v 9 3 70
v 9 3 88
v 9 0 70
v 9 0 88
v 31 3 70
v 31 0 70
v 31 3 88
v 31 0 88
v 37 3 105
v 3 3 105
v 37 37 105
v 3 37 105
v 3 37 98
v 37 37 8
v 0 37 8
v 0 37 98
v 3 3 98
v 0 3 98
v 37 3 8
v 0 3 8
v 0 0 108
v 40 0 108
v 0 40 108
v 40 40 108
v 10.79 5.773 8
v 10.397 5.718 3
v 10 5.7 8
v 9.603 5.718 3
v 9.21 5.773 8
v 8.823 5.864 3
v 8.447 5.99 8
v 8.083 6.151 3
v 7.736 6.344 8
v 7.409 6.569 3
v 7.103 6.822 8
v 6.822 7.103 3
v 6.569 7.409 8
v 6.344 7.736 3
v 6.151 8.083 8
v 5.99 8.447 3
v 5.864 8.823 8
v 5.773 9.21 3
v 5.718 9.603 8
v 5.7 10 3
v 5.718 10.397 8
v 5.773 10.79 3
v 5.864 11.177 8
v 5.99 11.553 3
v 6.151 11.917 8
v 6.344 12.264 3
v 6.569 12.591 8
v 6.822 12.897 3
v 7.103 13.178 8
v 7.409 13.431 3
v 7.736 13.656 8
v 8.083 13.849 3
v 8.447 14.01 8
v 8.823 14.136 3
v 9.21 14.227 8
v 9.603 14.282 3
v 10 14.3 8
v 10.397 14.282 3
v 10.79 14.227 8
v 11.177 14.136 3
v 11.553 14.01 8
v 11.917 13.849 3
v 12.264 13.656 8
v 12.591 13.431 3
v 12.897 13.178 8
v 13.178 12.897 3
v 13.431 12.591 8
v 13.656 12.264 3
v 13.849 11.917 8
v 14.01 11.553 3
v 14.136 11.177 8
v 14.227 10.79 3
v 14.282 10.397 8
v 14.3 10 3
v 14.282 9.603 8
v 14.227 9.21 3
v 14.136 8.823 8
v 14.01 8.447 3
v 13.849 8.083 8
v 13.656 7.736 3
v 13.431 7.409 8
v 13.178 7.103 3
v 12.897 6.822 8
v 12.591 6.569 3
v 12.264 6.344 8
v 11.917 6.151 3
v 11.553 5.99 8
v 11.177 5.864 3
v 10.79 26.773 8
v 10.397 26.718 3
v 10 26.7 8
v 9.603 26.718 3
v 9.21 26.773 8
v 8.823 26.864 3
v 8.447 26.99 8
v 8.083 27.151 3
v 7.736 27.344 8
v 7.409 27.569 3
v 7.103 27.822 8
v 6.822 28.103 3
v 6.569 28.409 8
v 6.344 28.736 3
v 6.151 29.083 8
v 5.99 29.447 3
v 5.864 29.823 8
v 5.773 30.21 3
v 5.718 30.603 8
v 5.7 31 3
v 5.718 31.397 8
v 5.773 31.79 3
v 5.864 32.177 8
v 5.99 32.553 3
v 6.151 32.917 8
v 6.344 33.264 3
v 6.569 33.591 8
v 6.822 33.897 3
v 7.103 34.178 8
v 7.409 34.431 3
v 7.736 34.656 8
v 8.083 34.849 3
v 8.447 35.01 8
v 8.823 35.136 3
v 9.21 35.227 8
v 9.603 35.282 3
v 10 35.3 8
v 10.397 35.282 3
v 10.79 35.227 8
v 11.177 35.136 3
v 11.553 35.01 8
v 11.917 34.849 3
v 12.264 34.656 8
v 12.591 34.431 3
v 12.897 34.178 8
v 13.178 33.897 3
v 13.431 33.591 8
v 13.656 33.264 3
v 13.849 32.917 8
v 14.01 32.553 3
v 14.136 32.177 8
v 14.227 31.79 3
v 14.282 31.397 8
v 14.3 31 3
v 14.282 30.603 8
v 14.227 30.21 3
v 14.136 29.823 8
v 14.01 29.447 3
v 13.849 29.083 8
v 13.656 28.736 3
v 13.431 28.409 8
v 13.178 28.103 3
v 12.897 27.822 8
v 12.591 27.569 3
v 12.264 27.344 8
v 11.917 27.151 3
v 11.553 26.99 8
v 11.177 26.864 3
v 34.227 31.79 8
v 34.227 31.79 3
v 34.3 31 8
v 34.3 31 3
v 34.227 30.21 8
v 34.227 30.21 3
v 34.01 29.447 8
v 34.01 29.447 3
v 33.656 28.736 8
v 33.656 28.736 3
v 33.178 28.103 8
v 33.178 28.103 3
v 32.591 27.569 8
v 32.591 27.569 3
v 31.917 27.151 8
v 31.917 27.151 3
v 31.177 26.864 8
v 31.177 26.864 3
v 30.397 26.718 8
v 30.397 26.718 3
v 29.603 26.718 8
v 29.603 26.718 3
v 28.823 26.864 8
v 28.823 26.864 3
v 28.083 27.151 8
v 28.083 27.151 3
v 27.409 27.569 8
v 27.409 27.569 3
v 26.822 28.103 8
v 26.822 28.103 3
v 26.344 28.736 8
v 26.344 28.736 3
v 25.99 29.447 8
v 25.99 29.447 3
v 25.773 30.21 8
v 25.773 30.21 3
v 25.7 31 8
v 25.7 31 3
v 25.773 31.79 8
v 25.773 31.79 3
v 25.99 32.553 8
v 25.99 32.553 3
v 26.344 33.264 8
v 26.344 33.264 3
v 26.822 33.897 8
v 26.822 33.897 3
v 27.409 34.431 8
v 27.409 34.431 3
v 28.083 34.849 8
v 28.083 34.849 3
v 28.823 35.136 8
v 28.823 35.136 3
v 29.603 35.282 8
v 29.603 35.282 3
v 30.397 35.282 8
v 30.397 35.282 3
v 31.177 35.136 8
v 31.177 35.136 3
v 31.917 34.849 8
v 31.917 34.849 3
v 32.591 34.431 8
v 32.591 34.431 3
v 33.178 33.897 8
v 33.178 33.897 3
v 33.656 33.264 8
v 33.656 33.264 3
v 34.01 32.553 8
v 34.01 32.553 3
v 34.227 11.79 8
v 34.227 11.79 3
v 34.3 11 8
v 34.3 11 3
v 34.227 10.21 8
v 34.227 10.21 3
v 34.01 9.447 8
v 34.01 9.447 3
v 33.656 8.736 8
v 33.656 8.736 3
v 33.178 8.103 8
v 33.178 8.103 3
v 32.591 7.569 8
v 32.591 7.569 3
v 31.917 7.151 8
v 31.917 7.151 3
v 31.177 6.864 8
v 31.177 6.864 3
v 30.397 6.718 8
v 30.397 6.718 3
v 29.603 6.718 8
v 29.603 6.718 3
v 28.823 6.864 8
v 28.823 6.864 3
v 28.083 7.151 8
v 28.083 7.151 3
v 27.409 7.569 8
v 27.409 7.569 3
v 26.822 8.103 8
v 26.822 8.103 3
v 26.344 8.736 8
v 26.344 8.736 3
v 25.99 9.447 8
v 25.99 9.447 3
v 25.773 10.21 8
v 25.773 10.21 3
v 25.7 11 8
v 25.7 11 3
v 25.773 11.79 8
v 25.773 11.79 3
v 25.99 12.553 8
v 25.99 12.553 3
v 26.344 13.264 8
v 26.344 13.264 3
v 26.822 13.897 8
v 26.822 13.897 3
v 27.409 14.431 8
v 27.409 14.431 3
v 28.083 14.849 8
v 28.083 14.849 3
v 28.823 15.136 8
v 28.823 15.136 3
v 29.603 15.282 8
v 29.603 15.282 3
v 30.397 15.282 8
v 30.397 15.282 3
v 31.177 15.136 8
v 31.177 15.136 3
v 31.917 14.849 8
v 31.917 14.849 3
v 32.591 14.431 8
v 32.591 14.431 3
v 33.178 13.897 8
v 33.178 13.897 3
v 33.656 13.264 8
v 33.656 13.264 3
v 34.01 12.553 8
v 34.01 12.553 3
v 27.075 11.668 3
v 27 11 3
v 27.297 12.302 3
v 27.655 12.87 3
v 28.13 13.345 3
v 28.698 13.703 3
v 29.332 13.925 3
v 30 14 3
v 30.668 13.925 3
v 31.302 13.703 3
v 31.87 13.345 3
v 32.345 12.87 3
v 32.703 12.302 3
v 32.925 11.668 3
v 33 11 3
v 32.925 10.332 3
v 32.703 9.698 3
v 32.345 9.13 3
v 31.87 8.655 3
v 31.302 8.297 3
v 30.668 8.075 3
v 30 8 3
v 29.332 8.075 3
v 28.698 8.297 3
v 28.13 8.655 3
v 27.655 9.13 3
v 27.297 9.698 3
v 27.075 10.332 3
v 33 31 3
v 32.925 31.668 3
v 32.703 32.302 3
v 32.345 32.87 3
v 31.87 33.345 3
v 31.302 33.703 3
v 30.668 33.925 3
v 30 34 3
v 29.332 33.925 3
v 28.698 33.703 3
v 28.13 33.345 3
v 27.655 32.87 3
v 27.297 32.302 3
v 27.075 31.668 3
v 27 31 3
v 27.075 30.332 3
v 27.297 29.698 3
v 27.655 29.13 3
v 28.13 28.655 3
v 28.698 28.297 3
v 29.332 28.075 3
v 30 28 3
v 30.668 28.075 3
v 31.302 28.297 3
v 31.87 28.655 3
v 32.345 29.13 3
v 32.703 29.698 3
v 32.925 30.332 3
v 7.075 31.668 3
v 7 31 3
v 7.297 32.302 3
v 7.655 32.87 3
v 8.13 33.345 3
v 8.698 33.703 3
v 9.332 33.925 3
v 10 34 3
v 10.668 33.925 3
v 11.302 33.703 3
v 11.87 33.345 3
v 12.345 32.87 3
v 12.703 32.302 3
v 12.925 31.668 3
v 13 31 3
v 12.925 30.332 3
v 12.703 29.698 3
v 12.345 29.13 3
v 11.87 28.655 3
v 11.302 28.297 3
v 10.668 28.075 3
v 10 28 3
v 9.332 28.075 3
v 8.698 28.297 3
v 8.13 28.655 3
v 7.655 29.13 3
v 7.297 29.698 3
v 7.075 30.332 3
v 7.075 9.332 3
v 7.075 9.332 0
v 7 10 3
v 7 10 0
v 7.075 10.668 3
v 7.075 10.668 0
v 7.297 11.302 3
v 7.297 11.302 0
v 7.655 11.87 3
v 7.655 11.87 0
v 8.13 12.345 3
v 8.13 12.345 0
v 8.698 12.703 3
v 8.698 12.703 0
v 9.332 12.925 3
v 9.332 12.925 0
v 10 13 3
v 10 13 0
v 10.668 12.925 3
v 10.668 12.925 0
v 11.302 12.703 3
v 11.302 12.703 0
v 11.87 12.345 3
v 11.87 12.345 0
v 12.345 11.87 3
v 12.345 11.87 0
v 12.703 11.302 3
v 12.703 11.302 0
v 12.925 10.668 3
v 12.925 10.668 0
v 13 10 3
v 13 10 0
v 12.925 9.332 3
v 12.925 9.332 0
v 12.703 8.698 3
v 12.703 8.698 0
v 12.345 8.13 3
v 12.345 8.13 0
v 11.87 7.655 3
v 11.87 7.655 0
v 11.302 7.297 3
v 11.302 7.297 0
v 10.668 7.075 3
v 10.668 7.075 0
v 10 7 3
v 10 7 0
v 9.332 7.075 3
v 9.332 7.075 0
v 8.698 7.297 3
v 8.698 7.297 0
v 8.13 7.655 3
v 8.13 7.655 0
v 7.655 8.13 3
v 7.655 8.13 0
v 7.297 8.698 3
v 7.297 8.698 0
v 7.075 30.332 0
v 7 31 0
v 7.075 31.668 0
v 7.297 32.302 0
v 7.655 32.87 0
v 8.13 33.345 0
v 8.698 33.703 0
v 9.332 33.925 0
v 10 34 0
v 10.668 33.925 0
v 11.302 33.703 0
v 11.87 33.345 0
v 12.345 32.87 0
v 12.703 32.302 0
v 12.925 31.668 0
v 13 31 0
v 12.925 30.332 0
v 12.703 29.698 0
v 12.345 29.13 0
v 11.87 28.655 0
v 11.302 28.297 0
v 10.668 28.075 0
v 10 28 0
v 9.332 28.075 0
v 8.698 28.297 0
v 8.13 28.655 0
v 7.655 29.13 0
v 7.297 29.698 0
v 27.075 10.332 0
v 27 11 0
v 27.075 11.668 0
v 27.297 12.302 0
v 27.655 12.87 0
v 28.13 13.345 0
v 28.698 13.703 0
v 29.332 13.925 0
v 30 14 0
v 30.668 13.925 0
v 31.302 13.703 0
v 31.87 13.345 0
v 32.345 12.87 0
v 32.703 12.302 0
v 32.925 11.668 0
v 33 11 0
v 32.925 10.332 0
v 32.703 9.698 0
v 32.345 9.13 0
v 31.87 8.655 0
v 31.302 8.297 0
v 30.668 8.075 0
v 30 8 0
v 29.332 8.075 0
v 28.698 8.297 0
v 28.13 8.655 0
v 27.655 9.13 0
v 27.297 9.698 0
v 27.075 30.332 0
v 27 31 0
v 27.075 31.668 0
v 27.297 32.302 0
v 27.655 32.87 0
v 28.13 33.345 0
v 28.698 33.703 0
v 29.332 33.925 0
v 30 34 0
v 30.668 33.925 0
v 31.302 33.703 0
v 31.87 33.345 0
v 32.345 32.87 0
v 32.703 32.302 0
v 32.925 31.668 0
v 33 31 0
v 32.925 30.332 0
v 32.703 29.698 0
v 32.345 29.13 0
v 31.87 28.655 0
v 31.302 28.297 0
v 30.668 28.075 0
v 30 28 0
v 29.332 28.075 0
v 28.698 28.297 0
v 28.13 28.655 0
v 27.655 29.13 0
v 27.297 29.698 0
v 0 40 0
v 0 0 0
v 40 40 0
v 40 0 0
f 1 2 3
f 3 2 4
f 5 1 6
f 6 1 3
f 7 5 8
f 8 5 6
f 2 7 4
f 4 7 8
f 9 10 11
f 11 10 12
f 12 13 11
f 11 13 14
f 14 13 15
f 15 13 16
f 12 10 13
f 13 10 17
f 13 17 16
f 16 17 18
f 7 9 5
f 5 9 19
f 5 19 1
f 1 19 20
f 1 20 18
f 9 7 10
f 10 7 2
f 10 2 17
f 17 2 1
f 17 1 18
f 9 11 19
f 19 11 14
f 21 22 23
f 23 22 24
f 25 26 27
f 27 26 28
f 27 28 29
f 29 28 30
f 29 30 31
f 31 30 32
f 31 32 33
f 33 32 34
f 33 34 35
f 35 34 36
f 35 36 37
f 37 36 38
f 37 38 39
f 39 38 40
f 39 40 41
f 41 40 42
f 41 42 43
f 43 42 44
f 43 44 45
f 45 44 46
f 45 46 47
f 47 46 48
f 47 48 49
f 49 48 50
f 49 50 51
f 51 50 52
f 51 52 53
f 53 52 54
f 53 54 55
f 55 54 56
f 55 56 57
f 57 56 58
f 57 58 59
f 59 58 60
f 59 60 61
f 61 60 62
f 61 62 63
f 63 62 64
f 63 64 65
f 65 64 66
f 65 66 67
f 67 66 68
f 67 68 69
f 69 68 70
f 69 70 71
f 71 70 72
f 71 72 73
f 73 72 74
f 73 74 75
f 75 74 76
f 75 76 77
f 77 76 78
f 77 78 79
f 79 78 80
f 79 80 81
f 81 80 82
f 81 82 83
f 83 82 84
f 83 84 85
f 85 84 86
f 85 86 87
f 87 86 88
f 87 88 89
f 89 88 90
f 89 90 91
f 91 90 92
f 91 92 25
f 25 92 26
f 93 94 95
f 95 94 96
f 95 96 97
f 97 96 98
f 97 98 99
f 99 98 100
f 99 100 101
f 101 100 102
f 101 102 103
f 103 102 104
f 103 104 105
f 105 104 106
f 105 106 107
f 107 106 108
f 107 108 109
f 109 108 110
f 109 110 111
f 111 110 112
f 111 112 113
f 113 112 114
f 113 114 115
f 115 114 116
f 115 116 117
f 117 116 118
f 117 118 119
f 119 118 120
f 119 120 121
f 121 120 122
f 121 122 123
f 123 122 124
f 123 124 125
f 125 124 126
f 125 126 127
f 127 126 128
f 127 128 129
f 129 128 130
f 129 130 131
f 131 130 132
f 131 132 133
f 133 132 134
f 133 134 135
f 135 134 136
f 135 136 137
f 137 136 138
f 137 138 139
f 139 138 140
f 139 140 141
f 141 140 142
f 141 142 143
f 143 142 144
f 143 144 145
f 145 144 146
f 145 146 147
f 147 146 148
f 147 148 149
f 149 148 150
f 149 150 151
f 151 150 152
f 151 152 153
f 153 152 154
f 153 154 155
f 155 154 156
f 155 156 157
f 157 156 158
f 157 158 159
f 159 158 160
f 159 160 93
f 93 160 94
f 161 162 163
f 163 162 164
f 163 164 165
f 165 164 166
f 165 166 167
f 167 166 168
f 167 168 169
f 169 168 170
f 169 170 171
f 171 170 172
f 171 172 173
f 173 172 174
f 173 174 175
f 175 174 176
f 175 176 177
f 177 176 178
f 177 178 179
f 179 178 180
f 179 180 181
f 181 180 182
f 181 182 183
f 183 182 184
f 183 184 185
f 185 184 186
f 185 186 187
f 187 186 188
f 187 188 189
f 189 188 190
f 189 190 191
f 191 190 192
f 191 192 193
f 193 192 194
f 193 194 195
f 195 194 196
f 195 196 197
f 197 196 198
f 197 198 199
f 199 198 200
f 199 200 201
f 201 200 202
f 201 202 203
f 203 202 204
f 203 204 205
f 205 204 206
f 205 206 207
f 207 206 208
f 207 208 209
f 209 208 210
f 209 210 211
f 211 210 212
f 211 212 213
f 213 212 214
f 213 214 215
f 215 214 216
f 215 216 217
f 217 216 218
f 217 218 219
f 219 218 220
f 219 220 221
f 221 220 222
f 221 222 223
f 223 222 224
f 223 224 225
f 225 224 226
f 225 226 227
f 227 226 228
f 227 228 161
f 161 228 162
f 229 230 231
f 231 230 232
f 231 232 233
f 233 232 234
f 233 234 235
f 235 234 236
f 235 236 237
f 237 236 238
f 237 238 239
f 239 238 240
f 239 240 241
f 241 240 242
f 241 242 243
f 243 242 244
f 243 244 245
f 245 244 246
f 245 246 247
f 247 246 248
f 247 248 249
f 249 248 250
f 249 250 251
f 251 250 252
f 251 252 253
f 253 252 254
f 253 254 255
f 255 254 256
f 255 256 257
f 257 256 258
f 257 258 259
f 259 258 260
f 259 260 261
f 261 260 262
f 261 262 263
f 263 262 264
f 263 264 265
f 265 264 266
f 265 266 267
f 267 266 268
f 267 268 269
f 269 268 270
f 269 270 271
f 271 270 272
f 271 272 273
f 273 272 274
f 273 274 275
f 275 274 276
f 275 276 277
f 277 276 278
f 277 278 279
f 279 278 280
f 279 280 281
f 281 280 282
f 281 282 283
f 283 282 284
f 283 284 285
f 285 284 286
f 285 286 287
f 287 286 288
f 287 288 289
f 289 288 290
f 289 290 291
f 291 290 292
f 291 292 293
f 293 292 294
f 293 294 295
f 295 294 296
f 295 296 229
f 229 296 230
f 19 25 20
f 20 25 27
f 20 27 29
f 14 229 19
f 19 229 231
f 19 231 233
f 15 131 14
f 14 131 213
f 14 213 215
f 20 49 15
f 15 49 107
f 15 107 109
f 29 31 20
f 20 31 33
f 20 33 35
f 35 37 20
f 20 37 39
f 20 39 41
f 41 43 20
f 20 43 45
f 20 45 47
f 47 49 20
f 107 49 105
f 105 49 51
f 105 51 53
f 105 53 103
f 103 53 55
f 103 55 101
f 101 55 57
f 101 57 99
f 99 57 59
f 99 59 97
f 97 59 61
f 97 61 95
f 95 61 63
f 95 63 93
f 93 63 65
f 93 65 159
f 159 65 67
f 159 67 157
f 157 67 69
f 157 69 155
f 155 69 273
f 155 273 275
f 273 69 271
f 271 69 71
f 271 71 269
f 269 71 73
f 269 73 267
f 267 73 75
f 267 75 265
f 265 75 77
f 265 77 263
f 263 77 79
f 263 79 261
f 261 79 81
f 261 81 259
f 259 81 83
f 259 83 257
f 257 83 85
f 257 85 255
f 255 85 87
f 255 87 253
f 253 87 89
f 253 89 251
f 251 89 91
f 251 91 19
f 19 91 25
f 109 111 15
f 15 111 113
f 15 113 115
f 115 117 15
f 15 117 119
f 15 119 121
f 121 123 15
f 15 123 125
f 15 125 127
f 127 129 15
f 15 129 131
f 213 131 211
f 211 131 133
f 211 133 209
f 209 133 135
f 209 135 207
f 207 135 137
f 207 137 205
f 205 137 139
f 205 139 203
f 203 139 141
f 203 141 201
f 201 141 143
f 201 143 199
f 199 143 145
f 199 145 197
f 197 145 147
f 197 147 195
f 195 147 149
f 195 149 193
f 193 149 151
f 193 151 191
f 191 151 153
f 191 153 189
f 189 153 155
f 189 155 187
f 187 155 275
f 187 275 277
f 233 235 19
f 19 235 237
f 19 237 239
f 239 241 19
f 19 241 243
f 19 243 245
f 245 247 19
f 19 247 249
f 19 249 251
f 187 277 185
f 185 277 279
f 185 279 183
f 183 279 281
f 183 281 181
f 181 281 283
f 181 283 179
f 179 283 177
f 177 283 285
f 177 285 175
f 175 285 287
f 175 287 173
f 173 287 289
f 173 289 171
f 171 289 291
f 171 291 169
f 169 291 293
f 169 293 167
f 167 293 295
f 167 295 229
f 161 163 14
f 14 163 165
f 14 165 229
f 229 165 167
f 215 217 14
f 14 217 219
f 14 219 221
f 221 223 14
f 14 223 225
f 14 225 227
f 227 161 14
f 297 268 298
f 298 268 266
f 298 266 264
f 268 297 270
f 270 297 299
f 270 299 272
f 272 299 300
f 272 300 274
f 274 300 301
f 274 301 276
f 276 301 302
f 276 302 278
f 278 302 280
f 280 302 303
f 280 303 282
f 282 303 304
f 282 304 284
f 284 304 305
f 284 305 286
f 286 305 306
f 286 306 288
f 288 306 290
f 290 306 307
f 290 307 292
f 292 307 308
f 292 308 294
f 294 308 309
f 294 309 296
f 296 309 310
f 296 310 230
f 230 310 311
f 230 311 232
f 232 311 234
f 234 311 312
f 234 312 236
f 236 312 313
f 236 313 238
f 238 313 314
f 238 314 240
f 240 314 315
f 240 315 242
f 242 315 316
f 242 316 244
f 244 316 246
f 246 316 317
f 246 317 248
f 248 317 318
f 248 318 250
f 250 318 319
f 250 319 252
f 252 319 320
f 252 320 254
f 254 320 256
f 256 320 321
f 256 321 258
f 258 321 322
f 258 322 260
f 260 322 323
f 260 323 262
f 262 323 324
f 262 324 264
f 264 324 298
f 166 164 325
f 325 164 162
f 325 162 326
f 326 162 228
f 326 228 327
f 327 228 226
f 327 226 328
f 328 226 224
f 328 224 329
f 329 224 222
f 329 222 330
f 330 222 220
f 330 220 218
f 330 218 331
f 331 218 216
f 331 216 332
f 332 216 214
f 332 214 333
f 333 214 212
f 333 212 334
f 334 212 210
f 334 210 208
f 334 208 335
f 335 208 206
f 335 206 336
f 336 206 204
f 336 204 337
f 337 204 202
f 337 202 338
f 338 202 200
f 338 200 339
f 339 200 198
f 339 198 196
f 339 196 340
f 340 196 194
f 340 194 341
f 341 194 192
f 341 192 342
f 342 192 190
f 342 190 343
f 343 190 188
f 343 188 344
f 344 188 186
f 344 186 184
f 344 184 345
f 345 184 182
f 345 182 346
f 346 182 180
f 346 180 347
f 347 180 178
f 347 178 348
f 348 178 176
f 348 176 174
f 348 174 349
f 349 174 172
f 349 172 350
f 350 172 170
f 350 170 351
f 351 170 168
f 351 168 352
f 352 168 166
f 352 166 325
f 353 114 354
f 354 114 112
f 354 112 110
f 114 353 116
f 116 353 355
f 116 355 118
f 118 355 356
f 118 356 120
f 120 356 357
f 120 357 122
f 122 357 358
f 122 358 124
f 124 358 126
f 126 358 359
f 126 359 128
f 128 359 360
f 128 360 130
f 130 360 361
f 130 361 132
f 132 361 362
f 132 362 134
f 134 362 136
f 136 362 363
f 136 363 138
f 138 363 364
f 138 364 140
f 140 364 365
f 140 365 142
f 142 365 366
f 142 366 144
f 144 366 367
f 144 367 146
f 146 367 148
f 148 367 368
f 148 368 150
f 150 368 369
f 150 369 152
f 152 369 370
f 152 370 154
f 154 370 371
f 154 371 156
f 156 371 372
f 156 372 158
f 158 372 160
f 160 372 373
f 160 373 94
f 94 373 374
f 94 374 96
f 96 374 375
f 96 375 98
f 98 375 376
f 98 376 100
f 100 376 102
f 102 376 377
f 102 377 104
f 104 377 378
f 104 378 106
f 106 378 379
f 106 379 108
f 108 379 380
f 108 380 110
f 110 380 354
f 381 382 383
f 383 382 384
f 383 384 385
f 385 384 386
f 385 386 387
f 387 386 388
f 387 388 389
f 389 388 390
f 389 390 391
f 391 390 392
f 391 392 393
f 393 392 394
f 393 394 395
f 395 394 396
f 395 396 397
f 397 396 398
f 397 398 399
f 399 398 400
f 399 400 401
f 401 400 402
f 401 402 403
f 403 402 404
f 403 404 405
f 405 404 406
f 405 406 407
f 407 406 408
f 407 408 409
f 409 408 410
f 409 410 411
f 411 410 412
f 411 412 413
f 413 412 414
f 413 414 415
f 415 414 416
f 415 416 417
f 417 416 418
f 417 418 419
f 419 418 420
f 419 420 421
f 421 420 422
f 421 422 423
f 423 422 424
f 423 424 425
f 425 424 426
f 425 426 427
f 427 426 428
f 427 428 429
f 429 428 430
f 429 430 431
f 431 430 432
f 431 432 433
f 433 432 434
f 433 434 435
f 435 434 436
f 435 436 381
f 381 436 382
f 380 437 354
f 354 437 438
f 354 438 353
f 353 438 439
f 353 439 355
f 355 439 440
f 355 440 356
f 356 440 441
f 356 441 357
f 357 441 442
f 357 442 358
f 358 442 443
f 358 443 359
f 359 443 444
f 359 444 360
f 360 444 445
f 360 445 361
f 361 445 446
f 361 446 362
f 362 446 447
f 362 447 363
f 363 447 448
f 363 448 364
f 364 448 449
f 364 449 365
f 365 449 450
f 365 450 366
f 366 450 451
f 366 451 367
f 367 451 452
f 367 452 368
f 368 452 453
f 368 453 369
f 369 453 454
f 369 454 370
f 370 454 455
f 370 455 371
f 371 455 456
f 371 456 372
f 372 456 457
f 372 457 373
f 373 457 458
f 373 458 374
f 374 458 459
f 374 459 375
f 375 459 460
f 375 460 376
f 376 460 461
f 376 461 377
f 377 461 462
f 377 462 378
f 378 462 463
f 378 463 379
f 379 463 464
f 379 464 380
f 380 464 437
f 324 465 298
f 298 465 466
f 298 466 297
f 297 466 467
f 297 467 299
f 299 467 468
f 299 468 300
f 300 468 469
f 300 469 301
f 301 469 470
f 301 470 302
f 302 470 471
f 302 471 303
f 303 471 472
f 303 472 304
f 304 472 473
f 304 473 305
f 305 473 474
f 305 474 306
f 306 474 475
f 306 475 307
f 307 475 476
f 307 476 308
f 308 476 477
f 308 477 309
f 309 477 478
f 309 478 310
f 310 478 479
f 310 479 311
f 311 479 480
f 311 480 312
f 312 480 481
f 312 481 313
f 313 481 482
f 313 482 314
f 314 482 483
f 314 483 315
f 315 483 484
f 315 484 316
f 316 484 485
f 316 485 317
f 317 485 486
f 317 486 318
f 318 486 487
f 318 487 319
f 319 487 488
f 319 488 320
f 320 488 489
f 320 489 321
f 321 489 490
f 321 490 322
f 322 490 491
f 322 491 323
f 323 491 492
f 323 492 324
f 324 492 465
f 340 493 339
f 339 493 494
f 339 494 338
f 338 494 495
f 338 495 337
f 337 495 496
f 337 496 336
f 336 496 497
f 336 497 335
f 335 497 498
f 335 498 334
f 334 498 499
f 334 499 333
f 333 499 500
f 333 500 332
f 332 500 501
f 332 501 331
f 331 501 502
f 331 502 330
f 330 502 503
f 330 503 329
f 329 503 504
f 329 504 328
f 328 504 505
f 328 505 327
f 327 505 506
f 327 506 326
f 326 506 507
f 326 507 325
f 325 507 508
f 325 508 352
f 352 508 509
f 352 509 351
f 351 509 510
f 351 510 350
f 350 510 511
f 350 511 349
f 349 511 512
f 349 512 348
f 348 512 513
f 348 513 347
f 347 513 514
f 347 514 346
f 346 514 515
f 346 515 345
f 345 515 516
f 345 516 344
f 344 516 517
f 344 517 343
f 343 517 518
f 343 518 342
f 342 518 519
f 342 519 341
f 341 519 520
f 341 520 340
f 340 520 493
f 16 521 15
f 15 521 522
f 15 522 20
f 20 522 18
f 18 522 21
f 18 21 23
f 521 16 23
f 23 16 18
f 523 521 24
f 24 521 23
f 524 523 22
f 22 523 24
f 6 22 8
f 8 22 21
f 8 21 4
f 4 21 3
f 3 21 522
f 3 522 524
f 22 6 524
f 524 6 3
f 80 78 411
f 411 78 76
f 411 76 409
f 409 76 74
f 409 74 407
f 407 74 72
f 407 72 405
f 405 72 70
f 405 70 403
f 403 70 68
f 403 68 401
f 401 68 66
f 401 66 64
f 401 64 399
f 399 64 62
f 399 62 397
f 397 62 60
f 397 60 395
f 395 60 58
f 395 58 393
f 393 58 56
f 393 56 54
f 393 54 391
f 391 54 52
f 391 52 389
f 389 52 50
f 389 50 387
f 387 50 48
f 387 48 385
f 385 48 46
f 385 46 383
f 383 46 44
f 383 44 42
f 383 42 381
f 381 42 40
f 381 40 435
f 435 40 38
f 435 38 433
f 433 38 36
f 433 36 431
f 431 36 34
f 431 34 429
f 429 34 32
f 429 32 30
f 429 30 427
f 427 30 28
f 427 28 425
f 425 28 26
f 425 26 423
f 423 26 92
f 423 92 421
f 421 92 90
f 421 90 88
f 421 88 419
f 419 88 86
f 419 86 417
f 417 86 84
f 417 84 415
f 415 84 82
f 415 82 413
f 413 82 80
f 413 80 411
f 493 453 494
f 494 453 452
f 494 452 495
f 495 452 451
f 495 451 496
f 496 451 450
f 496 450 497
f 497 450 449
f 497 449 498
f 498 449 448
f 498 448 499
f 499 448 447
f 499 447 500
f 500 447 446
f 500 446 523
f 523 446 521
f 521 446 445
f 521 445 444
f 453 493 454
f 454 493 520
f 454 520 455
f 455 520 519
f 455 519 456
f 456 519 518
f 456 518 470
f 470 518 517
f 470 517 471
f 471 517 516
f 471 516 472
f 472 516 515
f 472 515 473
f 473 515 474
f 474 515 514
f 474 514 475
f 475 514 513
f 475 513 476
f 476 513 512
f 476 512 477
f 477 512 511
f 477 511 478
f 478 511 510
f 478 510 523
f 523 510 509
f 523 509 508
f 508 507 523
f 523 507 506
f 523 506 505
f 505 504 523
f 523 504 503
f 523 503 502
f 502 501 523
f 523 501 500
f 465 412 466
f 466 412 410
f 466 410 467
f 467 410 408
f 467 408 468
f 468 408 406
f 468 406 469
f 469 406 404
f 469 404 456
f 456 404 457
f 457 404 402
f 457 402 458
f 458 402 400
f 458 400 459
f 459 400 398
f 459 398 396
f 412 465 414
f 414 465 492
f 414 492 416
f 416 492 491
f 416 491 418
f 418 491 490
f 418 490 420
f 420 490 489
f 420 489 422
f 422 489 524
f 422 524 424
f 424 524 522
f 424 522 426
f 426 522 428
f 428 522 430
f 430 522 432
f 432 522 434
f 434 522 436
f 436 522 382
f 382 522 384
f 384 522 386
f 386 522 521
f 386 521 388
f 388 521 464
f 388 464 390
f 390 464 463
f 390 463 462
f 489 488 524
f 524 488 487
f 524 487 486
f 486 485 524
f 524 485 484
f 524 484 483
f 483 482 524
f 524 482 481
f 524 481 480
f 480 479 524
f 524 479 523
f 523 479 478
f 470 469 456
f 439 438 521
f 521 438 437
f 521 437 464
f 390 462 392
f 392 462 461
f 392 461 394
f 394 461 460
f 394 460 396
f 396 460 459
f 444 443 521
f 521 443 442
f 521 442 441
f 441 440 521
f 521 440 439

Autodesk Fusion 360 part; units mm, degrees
sketch "Sketch1" plane through (0, 0, 0) normal (0, 0, 1) x (1, 0, 0)
  line L0 (0, 0) -> (40, 0)
  line L1 (40, 0) -> (40, 40)
  line L2 (40, 40) -> (0, 40)
  line L3 (0, 40) -> (0, 0)
  dimension "d1" = 40
  dimension "d2" = 40
sketch "Sketch2" plane through (0, 0, 0) normal (0, 0, 1) x (1, 0, 0)
  circle A0 centre (10, 31) radius 3
  circle A1 centre (30, 31) radius 3
  circle A2 centre (10, 10) radius 3
  circle A3 centre (30, 11) radius 3
  line L0 (0, 40) -> (0, 0)
  line L1 (40, 0) -> (40, 40)
  line L2 (40, 40) -> (0, 40)
  line L3 (0, 0) -> (40, 0)
  dimension "d3" = 6
  dimension "d4" = 6
  dimension "d5" = 6
  dimension "d6" = 6
  dimension "d7" = 10
  dimension "d8" = 10
  dimension "d9" = 10
  dimension "d10" = 10
  dimension "d11" = 9
  dimension "d12" = 9
  dimension "d13" = 10
  dimension "d14" = 11
extrude "Extrude1" add sketch "Sketch2" along normal blind 3
sketch "Sketch3" plane through (0, 0, 3) normal (0, 0, 1) x (-1, 0, 0)
  circle A0 centre (-30, -31) radius 3
  circle A1 centre (-30, -11) radius 3
  circle A2 centre (-10, -31) radius 3
  circle A3 centre (-10, -10) radius 3
  line L0 (0, 0) -> (-40, 0)
  line L1 (-40, 0) -> (-40, -40)
  line L2 (-40, -40) -> (0, -40)
  line L3 (0, -40) -> (0, 0)
  circle A4 centre (-10, -31) radius 4.3
  circle A5 centre (-30, -31) radius 4.3
  circle A6 centre (-10, -10) radius 4.3
  circle A7 centre (-30, -11) radius 4.3
  line L4 (0, -40) -> (-40, -40)
  line L5 (-40, -40) -> (-40, 0)
  line L6 (-40, 0) -> (0, 0)
  line L7 (0, 0) -> (0, -40)
  dimension "d17" = 8.6
  dimension "d18" = 8.6
  dimension "d19" = 8.6
  dimension "d20" = 8.6
extrude "Extrude2" add sketch "Sketch3" along normal blind 5 contours L0 L1 L2 L3 L4 L5 L6 L7
sketch "Sketch4" plane through (0, 0, 8) normal (0, 0, 1) x (-1, 0, 0)
  circle A0 centre (-30, -11) radius 4.3
  circle A1 centre (-30, -31) radius 4.3
  circle A2 centre (-10, -31) radius 4.3
  circle A3 centre (-10, -10) radius 4.3
  line L0 (0, 0) -> (-40, 0)
  line L1 (-40, 0) -> (-40, -40)
  line L2 (-40, -40) -> (0, -40)
  line L3 (0, -40) -> (0, 0)
  line L4 (-40, -40) -> (-37, -40)
  line L5 (-37, -40) -> (-37, 0)
  line L6 (-37, 0) -> (-40, 0)
  line L7 (-40, 0) -> (-40, -40)
  line L8 (0, -40) -> (-3, -40)
  line L9 (-3, -40) -> (-3, 0)
  line L10 (-3, 0) -> (0, 0)
  line L11 (0, 0) -> (0, -40)
  line L12 (0, -40) -> (-40, -40)
  line L13 (-40, -40) -> (-40, -37)
  line L14 (-40, -37) -> (0, -37)
  line L15 (0, -37) -> (0, -40)
  line L16 (0, 0) -> (-40, 0)
  line L17 (-40, 0) -> (-40, -3)
  line L18 (-40, -3) -> (0, -3)
  line L19 (0, -3) -> (0, 0)
  dimension "d23" = 3
  dimension "d24" = 40
  dimension "d25" = 3
  dimension "d26" = 3
  dimension "d27" = 3
extrude "Extrude3" add sketch "Sketch4" along normal blind 100 contours L0 L3 L9 L10 L11 L16 L18 L19 | L0 L5 L9 L16 L18 | L3 L9 L11 L14 L18 | L0 L1 L5 L6 L7 L16 L17 L18 | L2 L3 L8 L9 L11 L12 L14 L15 | L1 L5 L7 L14 L18 | L2 L5 L9 L12 L14 | L1 L2 L4 L5 L7 L12 L13 L14
sketch "Sketch5" plane through (0, 0, 0) normal (0, -1, 0) x (1, 0, 0)
  line L0 (0, 0) -> (40, 0)
  line L1 (40, 0) -> (40, 108)
  line L2 (40, 108) -> (0, 108)
  line L3 (0, 108) -> (0, 0)
sketch "Sketch6" plane through (0, 0, 0) normal (-1, 0, 0) x (0, -1, 0)
  line L0 (-40, 0) -> (0, 0)
  line L1 (0, 0) -> (0, 108)
  line L2 (0, 108) -> (-40, 108)
  line L3 (-40, 108) -> (-40, 0)
  line L4 (-3, 8) -> (-37, 8)
  line L5 (-37, 8) -> (-37, 98)
  line L6 (-37, 98) -> (-3, 98)
  line L7 (-3, 98) -> (-3, 8)
  line L8 (-40, 0) -> (0, 0)
  dimension "d30" = 3
  dimension "d31" = 3
  dimension "d32" = 8
  dimension "d33" = 90
extrude "Extrude4" cut sketch "Sketch6" against normal blind 10 contours L4 L5 L6 L7
sketch "Sketch7" plane through (0, 0, 108) normal (0, 0, 1) x (-1, 0, 0)
  line L0 (-3, -3) -> (-3, -37)
  line L1 (-3, -37) -> (-37, -37)
  line L2 (-37, -37) -> (-37, -3)
  line L3 (-37, -3) -> (-3, -3)
  line L4 (0, -40) -> (0, 0)
  line L5 (0, 0) -> (-40, 0)
  line L6 (-40, 0) -> (-40, -40)
  line L7 (-40, -40) -> (0, -40)
  line L8 (-3, -37) -> (-37, -37)
  line L9 (-37, -37) -> (-37, -3)
  line L10 (-37, -3) -> (-3, -3)
  line L11 (-3, -3) -> (-3, -37)
extrude "Extrude5" add sketch "Sketch7" against normal blind 3 contours L0 L1 L2 L3 L8 L9 L10 L11
sketch "Sketch8" plane through (0, 0, 0) normal (0, -1, 0) x (1, 0, 0)
  line L0 (9, 88) -> (31, 88)
  line L1 (31, 88) -> (31, 70)
  line L2 (31, 70) -> (9, 70)
  line L3 (9, 70) -> (9, 88)
  line L4 (0, 108) -> (0, 0)
  line L5 (40, 0) -> (40, 108)
  line L6 (40, 108) -> (0, 108)
  line L7 (0, 0) -> (40, 0)
  dimension "d38" = 9
  dimension "d39" = 9
  dimension "d40" = 20
  dimension "d41" = 70
extrude "Extrude6" cut sketch "Sketch8" against normal blind 15 contours L0 L1 L2 L3
sketch "Sketch9" plane through (0, 0, 0) normal (-1, 0, 0) x (0, -1, 0)
  line L0 (-37, 8) -> (-37, 98)
  line L1 (-37, 98) -> (-3, 98)
  line L2 (-3, 98) -> (-3, 8)
  line L3 (-3, 8) -> (-37, 8)
  line L4 (-40, 0) -> (0, 0)
  line L5 (0, 0) -> (0, 108)
  line L6 (0, 108) -> (-40, 108)
  line L7 (-40, 108) -> (-40, 0)
